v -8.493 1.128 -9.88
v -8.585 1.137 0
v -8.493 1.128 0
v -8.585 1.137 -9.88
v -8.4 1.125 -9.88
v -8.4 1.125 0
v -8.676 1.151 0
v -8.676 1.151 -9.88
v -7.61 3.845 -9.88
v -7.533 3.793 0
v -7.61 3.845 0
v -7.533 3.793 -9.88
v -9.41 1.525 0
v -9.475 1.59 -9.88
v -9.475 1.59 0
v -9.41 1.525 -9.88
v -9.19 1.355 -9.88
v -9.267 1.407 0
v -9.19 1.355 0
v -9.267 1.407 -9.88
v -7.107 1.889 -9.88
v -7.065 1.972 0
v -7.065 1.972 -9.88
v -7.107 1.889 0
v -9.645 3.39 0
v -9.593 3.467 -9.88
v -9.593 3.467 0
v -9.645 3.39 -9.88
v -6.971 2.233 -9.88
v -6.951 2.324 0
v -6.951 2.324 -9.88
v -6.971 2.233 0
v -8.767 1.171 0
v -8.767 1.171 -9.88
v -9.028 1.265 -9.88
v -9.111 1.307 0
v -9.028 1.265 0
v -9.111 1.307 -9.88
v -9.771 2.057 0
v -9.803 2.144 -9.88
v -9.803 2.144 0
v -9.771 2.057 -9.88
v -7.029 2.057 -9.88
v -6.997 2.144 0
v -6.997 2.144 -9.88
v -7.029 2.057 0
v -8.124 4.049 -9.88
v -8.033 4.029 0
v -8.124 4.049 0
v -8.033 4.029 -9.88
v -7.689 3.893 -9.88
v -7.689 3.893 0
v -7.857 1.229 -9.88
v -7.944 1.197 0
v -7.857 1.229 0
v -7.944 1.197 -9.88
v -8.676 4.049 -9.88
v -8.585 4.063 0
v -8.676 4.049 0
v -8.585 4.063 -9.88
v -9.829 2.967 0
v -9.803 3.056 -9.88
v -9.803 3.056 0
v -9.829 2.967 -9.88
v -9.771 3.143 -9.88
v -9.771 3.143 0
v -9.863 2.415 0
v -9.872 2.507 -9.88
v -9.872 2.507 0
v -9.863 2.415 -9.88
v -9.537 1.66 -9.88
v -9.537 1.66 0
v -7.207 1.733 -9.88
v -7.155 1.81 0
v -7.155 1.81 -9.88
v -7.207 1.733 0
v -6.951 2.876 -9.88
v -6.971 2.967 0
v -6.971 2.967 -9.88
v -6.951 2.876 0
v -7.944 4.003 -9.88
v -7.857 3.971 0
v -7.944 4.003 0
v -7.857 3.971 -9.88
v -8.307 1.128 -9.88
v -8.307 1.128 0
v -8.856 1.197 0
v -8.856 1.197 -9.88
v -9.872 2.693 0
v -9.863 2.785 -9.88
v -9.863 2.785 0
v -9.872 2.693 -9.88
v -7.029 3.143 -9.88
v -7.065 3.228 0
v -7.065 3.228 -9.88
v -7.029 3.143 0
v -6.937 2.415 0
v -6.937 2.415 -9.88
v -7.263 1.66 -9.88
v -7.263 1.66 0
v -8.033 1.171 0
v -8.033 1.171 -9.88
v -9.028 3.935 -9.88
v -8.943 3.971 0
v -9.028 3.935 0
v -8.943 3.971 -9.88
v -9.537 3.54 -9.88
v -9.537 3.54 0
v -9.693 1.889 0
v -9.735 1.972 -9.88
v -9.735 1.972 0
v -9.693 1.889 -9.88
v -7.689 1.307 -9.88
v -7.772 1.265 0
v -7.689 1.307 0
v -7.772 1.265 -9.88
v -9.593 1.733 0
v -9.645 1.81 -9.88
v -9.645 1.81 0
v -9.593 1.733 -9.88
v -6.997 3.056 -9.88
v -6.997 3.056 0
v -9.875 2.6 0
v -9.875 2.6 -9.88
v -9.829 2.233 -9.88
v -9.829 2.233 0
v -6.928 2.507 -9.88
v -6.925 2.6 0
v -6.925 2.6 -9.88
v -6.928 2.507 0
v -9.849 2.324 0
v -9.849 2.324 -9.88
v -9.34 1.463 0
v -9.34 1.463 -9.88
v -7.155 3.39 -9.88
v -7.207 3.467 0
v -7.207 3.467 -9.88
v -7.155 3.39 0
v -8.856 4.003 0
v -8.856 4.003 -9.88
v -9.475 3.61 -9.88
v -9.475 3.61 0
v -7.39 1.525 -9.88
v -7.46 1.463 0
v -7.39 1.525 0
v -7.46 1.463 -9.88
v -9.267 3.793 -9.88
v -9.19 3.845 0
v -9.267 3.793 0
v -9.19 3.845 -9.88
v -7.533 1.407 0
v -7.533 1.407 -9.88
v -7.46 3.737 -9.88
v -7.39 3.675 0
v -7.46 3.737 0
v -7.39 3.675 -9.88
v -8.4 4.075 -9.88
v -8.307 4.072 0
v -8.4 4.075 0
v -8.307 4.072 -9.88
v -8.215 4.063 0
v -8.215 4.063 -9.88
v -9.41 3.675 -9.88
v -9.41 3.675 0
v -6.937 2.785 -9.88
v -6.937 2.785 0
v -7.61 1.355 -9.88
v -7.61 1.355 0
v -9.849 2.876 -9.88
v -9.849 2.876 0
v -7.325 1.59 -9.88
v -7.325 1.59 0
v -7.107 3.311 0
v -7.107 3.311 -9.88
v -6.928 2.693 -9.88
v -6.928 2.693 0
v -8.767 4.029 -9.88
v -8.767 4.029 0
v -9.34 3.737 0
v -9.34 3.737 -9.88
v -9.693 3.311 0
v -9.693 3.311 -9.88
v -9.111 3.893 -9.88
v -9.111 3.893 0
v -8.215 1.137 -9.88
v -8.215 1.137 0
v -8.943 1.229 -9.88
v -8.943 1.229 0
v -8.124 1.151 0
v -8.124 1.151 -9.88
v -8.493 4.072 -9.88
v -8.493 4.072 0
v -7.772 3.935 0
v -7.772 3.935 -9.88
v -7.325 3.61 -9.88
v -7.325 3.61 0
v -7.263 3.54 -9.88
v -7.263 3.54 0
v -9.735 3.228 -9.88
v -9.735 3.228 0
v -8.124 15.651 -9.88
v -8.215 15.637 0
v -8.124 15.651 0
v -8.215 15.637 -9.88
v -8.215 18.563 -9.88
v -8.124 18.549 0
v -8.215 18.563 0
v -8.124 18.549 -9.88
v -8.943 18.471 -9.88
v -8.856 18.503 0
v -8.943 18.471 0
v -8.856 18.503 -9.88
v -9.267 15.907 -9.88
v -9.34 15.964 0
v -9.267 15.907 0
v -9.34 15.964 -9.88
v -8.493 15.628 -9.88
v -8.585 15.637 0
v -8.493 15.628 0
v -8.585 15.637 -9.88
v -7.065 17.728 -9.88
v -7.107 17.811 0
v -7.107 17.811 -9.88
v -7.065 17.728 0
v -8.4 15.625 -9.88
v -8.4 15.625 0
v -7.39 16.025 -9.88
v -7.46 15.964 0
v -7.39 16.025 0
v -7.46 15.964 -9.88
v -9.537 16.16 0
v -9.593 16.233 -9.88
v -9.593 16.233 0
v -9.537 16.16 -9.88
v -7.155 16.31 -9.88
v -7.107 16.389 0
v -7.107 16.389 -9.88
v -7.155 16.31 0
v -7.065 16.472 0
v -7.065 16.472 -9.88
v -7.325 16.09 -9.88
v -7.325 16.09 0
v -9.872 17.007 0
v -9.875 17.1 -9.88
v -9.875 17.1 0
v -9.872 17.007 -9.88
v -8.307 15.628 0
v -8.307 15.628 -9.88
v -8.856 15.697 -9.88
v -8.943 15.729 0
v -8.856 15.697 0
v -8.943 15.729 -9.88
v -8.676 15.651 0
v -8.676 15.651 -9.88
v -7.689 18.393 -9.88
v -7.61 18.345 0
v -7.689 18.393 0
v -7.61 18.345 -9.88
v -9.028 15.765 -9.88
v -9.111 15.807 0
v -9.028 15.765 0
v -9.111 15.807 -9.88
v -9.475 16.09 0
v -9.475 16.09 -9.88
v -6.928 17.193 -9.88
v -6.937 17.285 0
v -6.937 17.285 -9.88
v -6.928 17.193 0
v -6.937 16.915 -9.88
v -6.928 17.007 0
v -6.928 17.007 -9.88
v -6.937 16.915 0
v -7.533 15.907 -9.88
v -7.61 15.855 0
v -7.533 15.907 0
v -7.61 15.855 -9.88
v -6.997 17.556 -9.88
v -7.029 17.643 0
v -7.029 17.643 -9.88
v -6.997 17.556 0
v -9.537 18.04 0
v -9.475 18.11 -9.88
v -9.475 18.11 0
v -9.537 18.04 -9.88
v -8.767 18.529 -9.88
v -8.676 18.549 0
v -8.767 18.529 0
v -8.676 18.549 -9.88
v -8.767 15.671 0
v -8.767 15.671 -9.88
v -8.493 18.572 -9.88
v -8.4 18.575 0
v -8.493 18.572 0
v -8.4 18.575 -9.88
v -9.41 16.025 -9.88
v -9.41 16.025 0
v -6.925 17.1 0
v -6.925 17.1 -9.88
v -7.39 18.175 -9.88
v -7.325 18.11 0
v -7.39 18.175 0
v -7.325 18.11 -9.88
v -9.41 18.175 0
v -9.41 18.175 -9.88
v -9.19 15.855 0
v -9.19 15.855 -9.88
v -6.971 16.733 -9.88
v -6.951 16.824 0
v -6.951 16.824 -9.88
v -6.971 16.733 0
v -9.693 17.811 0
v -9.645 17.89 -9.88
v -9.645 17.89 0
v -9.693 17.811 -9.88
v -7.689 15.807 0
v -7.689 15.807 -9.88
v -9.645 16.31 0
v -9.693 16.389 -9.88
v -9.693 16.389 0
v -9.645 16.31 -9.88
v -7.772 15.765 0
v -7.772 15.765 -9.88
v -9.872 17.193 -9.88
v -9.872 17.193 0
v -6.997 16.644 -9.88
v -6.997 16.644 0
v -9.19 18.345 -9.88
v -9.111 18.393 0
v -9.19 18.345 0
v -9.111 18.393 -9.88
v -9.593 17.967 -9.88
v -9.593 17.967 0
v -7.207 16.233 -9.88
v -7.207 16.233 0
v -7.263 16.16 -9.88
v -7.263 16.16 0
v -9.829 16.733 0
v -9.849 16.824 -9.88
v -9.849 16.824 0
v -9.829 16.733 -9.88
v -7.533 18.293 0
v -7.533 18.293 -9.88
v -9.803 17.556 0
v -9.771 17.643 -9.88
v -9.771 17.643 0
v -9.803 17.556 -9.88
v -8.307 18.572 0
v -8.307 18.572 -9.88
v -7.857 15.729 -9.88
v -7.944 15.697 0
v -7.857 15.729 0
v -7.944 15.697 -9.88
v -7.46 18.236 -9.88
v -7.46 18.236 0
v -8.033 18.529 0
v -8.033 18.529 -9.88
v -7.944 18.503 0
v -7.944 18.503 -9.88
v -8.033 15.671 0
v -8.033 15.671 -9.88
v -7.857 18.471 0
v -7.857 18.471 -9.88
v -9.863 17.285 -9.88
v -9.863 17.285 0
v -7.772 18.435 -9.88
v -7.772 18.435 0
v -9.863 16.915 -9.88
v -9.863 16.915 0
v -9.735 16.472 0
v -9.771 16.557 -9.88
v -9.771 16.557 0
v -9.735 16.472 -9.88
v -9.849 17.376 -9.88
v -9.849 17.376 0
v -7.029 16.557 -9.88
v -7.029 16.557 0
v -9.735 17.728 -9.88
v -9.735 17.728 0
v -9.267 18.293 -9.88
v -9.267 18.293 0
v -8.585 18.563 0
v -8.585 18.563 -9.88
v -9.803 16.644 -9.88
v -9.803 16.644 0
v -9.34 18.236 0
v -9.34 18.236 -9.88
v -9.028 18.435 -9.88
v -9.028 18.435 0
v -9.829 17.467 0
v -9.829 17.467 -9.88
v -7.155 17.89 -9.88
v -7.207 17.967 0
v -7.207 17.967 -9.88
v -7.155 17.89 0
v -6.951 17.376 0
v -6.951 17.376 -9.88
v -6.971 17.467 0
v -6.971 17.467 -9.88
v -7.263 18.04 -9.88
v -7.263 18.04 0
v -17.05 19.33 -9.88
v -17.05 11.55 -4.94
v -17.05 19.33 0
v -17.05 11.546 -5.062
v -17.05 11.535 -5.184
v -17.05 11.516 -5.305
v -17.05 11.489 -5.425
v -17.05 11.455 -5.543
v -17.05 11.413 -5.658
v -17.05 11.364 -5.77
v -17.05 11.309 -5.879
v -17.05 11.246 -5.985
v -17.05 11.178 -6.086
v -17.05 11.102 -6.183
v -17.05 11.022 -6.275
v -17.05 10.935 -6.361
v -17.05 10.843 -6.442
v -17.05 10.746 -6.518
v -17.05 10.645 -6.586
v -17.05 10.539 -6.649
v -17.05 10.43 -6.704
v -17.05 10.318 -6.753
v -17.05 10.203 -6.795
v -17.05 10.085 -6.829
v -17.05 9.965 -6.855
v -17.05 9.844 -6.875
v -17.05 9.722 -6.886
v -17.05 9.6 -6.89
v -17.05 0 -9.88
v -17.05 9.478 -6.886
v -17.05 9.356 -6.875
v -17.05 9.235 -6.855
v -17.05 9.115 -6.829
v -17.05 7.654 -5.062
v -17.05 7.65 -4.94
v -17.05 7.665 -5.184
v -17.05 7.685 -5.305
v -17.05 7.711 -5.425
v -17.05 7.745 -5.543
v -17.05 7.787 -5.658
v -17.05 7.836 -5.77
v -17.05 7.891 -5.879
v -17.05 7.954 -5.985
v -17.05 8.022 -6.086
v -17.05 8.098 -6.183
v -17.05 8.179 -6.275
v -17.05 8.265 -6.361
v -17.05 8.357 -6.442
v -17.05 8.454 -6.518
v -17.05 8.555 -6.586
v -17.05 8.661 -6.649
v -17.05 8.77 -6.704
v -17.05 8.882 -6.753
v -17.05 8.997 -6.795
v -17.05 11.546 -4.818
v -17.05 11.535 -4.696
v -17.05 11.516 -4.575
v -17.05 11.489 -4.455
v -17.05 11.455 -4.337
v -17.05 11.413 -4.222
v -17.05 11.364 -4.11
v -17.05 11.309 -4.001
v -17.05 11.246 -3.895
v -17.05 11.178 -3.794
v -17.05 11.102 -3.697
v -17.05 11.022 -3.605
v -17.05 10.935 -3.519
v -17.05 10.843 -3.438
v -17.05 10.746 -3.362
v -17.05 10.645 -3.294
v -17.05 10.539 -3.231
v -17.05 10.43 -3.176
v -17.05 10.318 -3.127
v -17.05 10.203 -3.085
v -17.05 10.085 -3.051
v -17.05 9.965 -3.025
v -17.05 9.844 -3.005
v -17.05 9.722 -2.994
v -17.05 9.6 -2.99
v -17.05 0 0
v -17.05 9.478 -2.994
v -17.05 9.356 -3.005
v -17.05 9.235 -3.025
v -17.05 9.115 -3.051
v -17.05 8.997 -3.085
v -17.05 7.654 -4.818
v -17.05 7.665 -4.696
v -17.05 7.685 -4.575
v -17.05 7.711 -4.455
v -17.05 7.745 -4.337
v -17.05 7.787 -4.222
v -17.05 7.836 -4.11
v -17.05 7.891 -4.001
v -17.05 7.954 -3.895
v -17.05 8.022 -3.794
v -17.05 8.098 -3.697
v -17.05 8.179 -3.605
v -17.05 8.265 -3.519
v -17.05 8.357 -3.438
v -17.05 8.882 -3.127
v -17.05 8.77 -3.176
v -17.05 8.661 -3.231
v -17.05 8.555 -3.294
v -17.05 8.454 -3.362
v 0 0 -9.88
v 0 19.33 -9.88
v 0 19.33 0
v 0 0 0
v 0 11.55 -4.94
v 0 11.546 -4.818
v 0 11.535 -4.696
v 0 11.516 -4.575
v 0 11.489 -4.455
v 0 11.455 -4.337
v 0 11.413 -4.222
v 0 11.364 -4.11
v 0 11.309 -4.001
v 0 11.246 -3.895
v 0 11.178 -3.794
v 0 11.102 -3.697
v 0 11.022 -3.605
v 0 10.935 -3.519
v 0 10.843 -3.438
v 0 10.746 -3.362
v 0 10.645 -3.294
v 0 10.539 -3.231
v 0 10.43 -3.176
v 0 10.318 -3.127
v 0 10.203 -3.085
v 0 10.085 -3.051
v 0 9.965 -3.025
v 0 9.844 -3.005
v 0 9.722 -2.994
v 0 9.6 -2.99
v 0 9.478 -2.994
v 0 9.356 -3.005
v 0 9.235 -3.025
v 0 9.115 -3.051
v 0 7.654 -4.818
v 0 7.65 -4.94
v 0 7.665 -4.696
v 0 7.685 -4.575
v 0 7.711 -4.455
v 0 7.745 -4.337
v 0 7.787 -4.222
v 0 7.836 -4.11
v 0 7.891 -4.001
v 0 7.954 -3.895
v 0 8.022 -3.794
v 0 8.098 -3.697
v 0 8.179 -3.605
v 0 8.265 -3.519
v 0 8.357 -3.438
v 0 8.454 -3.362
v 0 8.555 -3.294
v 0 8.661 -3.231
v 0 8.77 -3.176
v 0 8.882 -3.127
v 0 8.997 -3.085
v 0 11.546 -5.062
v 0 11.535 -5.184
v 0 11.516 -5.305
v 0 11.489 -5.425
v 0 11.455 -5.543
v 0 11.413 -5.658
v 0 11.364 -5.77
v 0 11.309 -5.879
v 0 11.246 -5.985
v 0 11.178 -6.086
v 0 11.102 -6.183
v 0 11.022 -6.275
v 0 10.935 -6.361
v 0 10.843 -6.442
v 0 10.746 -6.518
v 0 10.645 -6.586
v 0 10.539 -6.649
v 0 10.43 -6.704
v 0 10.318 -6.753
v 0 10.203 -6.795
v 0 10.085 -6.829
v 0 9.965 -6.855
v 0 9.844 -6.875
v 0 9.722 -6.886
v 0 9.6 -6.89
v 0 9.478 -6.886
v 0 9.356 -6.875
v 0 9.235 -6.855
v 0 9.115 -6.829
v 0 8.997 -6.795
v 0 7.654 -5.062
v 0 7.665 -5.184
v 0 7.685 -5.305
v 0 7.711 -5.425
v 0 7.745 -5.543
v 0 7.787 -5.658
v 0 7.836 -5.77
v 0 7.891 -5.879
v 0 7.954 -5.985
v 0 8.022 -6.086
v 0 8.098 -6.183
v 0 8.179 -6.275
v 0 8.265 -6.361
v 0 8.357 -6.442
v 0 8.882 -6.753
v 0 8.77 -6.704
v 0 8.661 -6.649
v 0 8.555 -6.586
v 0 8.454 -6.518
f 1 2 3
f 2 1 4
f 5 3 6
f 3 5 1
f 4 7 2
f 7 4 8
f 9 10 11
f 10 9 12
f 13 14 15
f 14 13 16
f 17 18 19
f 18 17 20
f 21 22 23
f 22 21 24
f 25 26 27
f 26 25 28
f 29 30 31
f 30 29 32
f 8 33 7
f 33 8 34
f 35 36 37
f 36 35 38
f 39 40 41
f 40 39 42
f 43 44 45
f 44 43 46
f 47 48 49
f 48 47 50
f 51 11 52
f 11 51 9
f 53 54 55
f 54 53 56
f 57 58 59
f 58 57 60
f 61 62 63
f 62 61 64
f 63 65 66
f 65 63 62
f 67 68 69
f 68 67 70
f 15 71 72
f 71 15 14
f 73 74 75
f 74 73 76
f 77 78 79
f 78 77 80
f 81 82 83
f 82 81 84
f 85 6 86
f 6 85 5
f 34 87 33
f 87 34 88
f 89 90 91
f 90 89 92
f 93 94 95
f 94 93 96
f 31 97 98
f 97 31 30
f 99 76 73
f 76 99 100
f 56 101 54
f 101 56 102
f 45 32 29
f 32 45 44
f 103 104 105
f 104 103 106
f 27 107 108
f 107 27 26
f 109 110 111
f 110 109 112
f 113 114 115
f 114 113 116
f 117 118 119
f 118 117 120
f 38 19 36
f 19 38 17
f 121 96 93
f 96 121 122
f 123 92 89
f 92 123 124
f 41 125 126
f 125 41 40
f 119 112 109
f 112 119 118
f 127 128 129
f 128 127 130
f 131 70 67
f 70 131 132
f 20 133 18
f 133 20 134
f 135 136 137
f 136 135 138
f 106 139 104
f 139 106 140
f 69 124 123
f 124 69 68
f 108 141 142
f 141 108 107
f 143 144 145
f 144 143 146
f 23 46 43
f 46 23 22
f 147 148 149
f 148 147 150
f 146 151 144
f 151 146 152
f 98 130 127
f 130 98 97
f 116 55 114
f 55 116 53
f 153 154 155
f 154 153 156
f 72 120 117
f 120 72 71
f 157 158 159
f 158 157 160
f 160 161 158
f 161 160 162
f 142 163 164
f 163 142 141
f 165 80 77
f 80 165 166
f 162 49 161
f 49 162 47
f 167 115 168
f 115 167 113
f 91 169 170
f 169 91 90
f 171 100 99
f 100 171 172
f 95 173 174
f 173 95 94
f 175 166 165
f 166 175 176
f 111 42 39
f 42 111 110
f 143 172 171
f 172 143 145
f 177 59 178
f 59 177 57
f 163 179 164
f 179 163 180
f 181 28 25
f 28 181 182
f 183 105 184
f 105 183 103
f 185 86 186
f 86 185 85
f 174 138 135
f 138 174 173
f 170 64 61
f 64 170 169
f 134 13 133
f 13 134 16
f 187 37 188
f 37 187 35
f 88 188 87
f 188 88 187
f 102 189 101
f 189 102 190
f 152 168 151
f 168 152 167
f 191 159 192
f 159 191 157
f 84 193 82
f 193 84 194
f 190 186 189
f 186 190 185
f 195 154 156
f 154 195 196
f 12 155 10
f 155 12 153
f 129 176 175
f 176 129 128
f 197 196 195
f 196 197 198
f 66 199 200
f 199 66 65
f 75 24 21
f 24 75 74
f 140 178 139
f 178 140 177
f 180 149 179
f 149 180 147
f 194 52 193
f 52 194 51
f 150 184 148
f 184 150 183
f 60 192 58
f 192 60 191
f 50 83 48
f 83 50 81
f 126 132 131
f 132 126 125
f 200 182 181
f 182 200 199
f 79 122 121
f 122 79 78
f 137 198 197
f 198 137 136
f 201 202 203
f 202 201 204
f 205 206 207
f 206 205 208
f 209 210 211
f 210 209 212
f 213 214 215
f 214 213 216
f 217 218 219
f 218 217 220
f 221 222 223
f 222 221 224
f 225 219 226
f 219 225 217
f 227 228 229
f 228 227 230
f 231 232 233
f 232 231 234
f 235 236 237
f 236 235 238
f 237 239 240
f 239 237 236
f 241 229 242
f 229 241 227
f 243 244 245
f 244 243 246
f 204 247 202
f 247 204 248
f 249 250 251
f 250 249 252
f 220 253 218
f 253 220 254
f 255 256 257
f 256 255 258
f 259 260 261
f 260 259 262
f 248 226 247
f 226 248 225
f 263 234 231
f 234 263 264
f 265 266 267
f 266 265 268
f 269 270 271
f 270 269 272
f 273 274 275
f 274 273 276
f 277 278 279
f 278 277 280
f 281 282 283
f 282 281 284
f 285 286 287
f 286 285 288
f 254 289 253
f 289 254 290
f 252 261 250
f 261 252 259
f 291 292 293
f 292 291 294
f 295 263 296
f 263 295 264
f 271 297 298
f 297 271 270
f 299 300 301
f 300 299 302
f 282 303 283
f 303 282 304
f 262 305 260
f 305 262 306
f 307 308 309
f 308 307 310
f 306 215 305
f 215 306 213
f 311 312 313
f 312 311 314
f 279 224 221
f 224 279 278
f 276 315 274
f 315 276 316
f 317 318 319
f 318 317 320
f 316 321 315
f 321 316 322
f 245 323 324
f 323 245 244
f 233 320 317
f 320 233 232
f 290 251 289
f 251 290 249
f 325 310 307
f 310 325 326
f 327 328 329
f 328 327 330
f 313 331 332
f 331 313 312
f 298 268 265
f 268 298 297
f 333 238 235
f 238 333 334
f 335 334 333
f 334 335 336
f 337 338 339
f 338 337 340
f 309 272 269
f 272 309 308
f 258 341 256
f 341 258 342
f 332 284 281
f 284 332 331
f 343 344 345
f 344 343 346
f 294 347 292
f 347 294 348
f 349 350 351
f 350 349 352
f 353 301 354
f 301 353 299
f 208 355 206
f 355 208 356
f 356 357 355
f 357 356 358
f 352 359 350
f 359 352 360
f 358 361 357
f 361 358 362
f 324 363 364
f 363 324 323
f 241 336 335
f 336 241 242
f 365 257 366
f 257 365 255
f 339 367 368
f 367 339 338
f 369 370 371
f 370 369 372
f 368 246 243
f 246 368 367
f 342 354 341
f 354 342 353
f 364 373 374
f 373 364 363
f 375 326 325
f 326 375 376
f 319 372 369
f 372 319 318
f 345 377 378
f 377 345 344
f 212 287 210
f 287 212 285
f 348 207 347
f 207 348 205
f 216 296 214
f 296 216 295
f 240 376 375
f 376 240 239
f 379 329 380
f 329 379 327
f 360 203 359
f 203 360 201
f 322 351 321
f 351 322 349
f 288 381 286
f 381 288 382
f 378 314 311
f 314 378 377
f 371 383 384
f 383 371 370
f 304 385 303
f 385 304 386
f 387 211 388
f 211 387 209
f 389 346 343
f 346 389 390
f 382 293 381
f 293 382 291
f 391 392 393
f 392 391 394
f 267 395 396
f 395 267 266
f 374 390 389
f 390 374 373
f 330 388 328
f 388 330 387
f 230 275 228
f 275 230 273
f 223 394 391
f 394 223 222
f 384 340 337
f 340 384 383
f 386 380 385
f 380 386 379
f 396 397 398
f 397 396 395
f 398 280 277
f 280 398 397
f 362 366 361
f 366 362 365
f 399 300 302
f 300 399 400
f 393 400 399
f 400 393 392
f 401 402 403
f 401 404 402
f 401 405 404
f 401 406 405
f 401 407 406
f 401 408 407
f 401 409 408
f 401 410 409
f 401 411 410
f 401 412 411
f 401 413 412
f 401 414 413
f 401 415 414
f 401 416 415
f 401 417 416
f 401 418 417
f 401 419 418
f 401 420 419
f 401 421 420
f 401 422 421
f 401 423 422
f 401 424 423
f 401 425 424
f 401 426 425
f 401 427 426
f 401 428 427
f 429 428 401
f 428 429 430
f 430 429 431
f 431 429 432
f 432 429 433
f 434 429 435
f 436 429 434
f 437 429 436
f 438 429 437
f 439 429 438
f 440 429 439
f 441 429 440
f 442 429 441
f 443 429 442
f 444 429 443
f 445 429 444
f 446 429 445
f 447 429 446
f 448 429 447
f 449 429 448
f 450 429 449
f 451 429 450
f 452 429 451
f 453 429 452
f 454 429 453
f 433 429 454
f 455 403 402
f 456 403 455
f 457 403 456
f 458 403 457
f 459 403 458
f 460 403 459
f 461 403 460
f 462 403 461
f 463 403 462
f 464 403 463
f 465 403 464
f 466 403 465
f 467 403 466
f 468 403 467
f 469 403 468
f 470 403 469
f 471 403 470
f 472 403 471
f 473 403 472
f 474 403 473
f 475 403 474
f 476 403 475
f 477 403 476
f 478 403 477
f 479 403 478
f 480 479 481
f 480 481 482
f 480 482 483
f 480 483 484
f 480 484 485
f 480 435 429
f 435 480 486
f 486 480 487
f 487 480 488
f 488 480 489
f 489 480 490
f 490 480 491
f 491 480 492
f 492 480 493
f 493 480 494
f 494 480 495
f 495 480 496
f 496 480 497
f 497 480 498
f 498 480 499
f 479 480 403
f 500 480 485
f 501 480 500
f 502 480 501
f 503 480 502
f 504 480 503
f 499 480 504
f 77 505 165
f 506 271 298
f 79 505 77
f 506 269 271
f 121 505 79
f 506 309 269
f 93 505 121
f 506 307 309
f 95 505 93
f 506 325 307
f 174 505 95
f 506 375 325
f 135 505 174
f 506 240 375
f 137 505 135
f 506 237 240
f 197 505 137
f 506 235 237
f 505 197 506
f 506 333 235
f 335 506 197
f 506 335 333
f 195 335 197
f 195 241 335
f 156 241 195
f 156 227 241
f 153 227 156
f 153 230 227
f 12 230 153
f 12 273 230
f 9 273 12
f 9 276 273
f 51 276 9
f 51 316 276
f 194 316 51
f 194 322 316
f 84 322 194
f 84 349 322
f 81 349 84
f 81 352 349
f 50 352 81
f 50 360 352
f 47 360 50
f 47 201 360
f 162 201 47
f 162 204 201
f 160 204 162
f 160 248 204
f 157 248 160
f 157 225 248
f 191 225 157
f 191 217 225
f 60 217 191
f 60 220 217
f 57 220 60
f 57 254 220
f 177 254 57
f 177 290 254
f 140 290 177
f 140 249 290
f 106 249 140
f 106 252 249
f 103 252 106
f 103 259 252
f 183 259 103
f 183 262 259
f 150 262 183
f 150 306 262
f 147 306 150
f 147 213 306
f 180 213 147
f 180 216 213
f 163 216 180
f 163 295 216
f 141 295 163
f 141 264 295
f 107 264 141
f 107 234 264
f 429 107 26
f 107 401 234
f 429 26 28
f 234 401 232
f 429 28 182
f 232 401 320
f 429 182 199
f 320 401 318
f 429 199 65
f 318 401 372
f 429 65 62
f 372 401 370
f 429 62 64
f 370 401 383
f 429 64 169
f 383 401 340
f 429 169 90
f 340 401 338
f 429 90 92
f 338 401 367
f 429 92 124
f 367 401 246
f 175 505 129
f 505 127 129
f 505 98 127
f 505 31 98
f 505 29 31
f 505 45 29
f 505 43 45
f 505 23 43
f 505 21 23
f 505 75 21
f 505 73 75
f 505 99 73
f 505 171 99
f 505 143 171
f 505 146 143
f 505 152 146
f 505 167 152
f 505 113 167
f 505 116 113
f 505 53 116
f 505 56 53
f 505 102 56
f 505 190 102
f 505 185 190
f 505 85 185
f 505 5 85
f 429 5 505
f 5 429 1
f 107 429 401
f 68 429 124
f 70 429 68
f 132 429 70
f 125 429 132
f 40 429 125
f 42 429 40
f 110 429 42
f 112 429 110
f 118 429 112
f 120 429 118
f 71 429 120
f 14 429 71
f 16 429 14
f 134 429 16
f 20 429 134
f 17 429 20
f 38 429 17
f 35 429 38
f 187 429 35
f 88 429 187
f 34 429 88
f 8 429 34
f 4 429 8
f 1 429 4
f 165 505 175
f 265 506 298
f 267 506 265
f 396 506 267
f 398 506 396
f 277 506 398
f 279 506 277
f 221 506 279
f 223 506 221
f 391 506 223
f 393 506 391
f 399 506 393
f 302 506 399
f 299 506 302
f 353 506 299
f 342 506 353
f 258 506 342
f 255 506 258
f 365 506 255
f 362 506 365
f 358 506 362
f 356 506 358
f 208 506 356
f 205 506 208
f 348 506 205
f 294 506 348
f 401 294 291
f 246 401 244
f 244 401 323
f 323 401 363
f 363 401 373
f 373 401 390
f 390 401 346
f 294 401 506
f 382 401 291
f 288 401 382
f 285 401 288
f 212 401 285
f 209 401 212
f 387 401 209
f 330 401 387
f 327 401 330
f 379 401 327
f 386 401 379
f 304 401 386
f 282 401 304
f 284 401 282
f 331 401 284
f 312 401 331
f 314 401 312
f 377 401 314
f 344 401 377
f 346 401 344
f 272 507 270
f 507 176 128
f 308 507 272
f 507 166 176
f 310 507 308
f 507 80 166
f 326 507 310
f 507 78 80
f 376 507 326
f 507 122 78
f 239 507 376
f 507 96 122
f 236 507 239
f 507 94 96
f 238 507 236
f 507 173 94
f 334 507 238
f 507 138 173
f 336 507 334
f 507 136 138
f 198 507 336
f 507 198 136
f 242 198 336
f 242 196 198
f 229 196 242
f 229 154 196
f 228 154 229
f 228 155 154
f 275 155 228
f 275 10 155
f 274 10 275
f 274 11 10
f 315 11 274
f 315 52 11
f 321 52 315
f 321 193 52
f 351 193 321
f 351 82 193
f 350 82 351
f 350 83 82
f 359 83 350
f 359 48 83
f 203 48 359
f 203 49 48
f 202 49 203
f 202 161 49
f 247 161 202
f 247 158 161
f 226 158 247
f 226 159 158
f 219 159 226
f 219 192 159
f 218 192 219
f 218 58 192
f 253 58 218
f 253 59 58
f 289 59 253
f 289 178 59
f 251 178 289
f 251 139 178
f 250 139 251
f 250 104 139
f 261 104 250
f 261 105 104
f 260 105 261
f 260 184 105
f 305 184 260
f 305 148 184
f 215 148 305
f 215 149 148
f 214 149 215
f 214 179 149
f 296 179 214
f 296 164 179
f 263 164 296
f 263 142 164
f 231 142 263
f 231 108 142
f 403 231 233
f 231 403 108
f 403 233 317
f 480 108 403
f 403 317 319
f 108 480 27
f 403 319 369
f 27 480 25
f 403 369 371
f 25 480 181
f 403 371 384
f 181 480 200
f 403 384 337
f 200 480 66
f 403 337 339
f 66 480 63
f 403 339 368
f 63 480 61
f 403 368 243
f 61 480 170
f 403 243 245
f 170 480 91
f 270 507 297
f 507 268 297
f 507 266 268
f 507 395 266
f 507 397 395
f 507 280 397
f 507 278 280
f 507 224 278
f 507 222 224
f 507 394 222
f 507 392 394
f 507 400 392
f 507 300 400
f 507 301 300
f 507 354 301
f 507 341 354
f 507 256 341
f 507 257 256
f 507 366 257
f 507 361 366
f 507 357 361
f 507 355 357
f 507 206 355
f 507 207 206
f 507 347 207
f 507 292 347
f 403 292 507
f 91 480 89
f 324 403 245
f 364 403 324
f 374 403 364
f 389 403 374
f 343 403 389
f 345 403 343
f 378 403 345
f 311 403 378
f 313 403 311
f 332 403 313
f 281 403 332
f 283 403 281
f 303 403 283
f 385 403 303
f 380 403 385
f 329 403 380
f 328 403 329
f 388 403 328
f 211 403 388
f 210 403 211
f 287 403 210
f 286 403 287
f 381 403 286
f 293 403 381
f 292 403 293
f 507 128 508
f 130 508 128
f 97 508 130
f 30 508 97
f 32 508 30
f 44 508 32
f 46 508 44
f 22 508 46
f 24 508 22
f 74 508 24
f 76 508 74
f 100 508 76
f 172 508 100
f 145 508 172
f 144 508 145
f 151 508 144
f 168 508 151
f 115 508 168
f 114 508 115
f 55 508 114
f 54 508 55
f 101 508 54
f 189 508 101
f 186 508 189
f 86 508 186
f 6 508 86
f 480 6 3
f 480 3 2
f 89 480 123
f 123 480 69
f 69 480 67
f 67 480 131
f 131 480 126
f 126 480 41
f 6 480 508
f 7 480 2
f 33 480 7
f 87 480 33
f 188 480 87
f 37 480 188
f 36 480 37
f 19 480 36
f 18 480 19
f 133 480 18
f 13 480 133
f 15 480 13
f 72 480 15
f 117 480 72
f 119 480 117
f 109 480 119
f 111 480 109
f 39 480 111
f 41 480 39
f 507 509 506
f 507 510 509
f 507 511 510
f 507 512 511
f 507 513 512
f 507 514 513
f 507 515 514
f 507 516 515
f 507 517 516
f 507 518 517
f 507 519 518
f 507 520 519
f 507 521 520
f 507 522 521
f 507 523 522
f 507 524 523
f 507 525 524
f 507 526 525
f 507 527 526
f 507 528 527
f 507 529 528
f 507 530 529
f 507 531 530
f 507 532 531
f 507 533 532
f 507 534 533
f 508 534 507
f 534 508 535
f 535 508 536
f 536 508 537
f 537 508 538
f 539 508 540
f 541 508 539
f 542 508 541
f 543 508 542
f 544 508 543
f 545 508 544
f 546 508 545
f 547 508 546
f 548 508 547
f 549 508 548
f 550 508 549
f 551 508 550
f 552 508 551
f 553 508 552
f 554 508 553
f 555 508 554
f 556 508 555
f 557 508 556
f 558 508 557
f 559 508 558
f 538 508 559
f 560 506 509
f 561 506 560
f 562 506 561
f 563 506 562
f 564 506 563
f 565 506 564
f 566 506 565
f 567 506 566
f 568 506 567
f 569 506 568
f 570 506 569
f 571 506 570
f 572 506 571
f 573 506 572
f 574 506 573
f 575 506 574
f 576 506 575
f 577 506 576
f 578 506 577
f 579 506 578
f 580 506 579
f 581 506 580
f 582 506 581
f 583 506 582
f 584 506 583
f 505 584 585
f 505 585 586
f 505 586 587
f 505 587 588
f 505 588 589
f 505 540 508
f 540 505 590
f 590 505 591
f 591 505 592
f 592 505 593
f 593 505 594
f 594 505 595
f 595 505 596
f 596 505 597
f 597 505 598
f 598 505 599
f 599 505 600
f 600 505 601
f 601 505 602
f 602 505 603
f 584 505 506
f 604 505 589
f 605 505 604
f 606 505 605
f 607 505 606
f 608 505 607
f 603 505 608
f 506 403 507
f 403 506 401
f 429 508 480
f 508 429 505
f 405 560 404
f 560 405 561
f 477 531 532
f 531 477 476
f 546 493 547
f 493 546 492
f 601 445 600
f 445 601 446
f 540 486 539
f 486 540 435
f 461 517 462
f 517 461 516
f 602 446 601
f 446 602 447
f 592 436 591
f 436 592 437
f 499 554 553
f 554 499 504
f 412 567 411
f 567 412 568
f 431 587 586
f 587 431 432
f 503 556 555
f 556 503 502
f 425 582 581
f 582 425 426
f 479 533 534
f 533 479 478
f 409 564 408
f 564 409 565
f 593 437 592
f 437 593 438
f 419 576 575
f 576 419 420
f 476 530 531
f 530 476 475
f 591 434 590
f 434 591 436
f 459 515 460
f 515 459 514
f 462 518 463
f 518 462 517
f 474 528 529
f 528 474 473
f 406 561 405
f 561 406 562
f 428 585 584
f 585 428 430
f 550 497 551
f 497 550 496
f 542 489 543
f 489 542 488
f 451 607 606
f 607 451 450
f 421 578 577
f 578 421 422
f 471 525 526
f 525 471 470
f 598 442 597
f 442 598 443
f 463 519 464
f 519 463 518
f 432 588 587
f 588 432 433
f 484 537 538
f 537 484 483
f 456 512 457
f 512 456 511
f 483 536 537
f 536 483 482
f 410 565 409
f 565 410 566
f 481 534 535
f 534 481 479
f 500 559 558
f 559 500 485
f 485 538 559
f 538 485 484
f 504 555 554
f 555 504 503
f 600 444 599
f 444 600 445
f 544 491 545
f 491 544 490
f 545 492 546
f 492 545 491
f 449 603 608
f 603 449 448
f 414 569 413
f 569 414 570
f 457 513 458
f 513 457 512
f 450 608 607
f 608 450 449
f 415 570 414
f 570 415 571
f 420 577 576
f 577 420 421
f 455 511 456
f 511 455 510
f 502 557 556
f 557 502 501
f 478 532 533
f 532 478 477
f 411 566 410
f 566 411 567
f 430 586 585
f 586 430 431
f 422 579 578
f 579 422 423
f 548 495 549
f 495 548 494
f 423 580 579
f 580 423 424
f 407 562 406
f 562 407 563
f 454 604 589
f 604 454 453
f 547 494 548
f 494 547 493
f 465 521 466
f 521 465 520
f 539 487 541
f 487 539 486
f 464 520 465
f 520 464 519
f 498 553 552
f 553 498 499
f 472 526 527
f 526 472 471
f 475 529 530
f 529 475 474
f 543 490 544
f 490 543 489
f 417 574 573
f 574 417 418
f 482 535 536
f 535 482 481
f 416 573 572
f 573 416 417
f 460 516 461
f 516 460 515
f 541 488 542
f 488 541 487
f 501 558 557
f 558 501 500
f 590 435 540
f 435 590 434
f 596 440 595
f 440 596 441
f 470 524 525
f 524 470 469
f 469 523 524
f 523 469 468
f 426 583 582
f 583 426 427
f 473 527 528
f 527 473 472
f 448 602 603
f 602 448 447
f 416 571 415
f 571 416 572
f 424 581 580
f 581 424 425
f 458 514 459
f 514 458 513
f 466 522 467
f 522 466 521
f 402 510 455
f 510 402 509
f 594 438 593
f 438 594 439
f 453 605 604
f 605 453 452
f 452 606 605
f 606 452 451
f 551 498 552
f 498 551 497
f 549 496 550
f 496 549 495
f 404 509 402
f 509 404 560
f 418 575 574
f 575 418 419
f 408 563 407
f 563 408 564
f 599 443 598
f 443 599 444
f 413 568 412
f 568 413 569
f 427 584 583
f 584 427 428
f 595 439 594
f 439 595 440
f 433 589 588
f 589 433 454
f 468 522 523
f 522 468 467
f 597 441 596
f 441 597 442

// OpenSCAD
// file: ../../shared_helper.scad
// Shared Helper variables and modules

// Variables
quality_value = 100;
$fn = quality_value;

// Screw Holes
m2_hole_diameter = 1.85; // 1.95;
m2_loose_diameter = 2.50;
m2_counter_sink_diameter = 3.80;
m2_counter_sink_length = 2.00;
m2_hole_offset = m2_hole_diameter / 2.0;
m2_hole_height = 100.00;
m2_nut_outer_width = 3.90;
m2_nut_outer_height = 4.40;
m2_nut_outer_depth = 1.50;
// M2_Counter_Sink_Depth

m3_hole_diameter = 2.9; // 2.8
m3_hole_offset = m3_hole_diameter / 2.0;
m3_hole_height = 100.00;
m3_head_diameter = 6.2;
m3_head_depth = 3.0; // 2.5??, 3.0

m4_hole_diameter = 3.85; // 3.90
m4_hole_offset = m4_hole_diameter / 2.0;
m4_hole_height = 100.00;
m4_head_diameter = 7.55;
m4_head_depth = 3.0; // 2.5??, 3.0

// Tolerances
hole_tight_tolerance = 0.05;
hole_loose_tolerance = 0.20;

// Springs
spring_diameter = 5.45;
spring_length = 35.00;

// Nails
brass_nail_diameter = 2.4; // 2.00; // 1.95 at the beginning it tapers
brass_nail_length = 29.54;
brass_nail_head_diameter = 3.20; // 3.00; // oval 2.84 - 3.1 mm
brass_nail_head_depth = 1.80; //1.00; // 1.80; // 2.00;

// General Variables
v_wheel_hole_diameter = 5.20;
v_wheel_offset = (v_wheel_hole_diameter / 2.0) + 2.0;

// Hot-End Holes
stand_off_hole_diameter = m3_hole_diameter;
stand_off_width_distance = 11.60 + stand_off_hole_diameter;

// Magnets
// Small Magnet (Neo)
small_magnet_height = 2.00; // ±2.00 1.97
small_magnet_diameter = 3.00; // ±3.00 // 2.98

// Medium Magnet (Neo)
medium_magnet_height = 2.96; // ±3.00
medium_magnet_diameter = 5.00;

// Large Magnet (ferrite)
large_magnet_height = 2.98; // ±3.00
large_magnet_diameter = 9.79; // ±10.00

// Switches
// D2F Switch
d2f_length = 12.88; // ±12.70
d2f_width = 5.84; // ±5.70
d2f_depth = 6.20; // ±7.00 (5 + 2) ... ±6.50
d2f_pins = 9.00 - 6.50;
d2f_plunger_length = 2.64;
d2f_plunger_width = 0.97; // ±1.00
d2f_plunger_depth = 0.39; // ±0.50
d2f_mount_hole_position = 2.10;
d2f_hole_position_from_centre = 2.85;
d2f_pin_pre_travel = 0.50;
d2f_mount_hole_shift = 4.40 + m2_hole_offset + m2_hole_offset;
d2f_switch_base = 0.2 + 0.7 + 1.50 + 0.55 - 1.0;
d2f_switch_hole_hight = 22.00;
d2f_extra_tolerance_for_switch_holes = 0.12;

// 10t85 Switch
10t85_length = 20.04; // ±19.90
10t85_width = 6.34; // ±6.40
10t85_depth = 10.64; // ±10.70
10t85_plunger_length = 3.28; // ±4.00
10t85_plunger_width = 1.96;
10t85_plunger_depth = 1.30;

// Creality Endstop Board, 2208 V2.0
// creality_endstop_hole_diameter = m3_hole_diameter + hole_loose_tolerance; // Hole is M3 sized but meant for a loose M2
creality_endstop_hole_diameter = m2_hole_diameter + hole_tight_tolerance;
creality_endstop_hole_offset = 15.00;
creality_endstop_board_height = 20.30;
creality_endstop_plug_height_extension = 2.00;
creality_endstop_board_width = 20.20;
creality_endstop_board_thickness = 1.30;
creality_endstop_board_pins_thickness = 3.20 - creality_endstop_board_thickness;
creality_endstop_board_switch_thickness = 8.50 - creality_endstop_board_thickness;
creality_endstop_board_back_space = 2.00; // Taken from the rail mount bracket
creality_endstop_board_back_height = 14.90;
creality_endstop_board_back_width = 16.80;
creality_endstop_back_thickness = 3.30;
creality_endstop_back_hole_wall_spacing = 1.50; //3.00;

// Small Tactile Switch
small_tactile_switch_length = 6.21;
small_tactile_switch_width = 6.17;
small_tactile_switch_depth = 3.18;
small_tactile_switch_plunger_diameter = 3.40;
small_tactile_switch_plunger_depth = 1.40;

// Large Tactile Switch
large_tactile_switch_length = 12.03;
large_tactile_switch_width = 11.95;
large_tactile_switch_depth = 3.12;
large_tactile_switch_plunger_length = 3.75;
large_tactile_switch_plunger_width = 3.70;
large_tactile_switch_plunger_depth = 3.94;

// Button
button_topper_top_diameter = 11.65;
button_topper_bottom_diameter = 12.96;
button_topper_depth = 5.64;
button_topper_bottom_depth = 4.38;

// Belts
// GT2

// Modules
// Creality Mounting Holes
module CrealityCounterSunkHotEndMountingHoles(total_casing_depth, casing_top_extension) {
  // Mounting holes with countersinking - horizontal, through-holes, properly positioned
  cylinder(d=m3_hole_diameter, h=total_casing_depth + 2.00, center=true);
  cylinder(d=m3_hole_diameter, h=total_casing_depth + 2.00, center=true);

  translate([stand_off_width_distance, 0, 0]) {
    cylinder(d=m3_hole_diameter, h=total_casing_depth + 2.00, center=true);
    cylinder(d=m3_head_diameter + hole_loose_tolerance, h=4 + m3_head_depth + 6 + 1.8 + casing_top_extension);
  }
}

module CrealityHotEndMountingHoles(total_casing_depth) {
  cylinder(d=m3_hole_diameter, h=total_casing_depth + 2.00, center=true);

  translate([stand_off_width_distance, 0, 0]) {
    cylinder(d=m3_hole_diameter, h=total_casing_depth + 2.00, center=true);
  }
}

module CrealityEndstopMountHoles(height, include_back_nut_cutout) {
  cylinder(d=creality_endstop_hole_diameter, h=height, center=true);

  translate([creality_endstop_hole_offset, 0, 0]) {
    cylinder(d=creality_endstop_hole_diameter, h=height, center=true);
  }

  if (include_back_nut_cutout) {
    back_depth = m2_nut_outer_depth;

    translate([-2.0, -2.0, 0]) {
      cube([m2_nut_outer_width, m2_nut_outer_height, back_depth]);

      translate([creality_endstop_hole_offset, 0, 0]) {
        cube([m2_nut_outer_width, m2_nut_outer_height, back_depth]);
      }
    }
  }
}

module CrealityEndstopBackSpace(base_cutout_extension) {
  // Smaller gap between screw holes
  translate([creality_endstop_hole_diameter + creality_endstop_back_hole_wall_spacing, 0.0, 0.0]) {
    cube([creality_endstop_board_back_width - 2 * (creality_endstop_hole_diameter + creality_endstop_back_hole_wall_spacing), base_cutout_extension, creality_endstop_back_thickness + 1.0]);
  }

  // Top gap part
  translate([0.0, base_cutout_extension, 0]) {
    cube([creality_endstop_board_back_width, (creality_endstop_board_back_height + base_cutout_extension), creality_endstop_back_thickness + 1.0]);
  }
}

// D2F Switch Mounting
module D2F_Switch_Space() { // Should be used as a negative / difference space
  // D2F Switch Space
  // switch_base = 0.2 + 0.7 + 1.50 + 0.55;
  // switch_base = 0.2 + 0.7 + 1.50 + 0.55 - 1.0;
  switch_base = d2f_switch_base;

  // cube([d2f_depth, d2f_width + 1.05 + 0.75 - 0.95, d2f_length + casing_top_edge_buffer]); // 1.05
  cube([d2f_length, (d2f_width + 2.00) + d2f_pins, d2f_depth]);
}

module D2F_Switch_Mount_Holes() {
  rotate([0, 0, 90]) {
    translate([0.0, d2f_hole_position_from_centre, 0.0]) {
      cylinder(d=m2_hole_diameter + hole_tight_tolerance + (d2f_extra_tolerance_for_switch_holes * 3), h=d2f_switch_hole_hight);
    }

    translate([0.0, -(d2f_hole_position_from_centre + m2_hole_offset), 0.0]) {
      cylinder(d=m2_hole_diameter + hole_tight_tolerance + (d2f_extra_tolerance_for_switch_holes * 3), h=d2f_switch_hole_hight);
    }
  }
}
// file: hotend_slider_helpers.scad
include <../../shared_helper.scad>

// Slider mechanism specific variables
slider_height = 20.00;
slider_width = 20.00; // 23.00 30.00
slider_depth = 10.00;
slider_movement = 2.00; // How far the slider can move
slider_guide_hole_diameter = brass_nail_diameter + hole_loose_tolerance; // For brass nails

spring_hole_offset = 6.00; // Distance between spring holes
spring_back_space = 2.00; // Space behind spring - 1.00;

casing_wall_thickness = 4.00;
casing_bottom_thickness = 2.00;

m3_head_depth = 0.2; // 2.5??, 3.0

small_magent_position = 3.00;
// main file
include <hotend_slider_helpers.scad>

module Slider() {
  top_extension = 1.60 + 1.70 + 0.20 + 0.30 + 0.20;

  half_height = (slider_height - 0.80) / 2.00; // 1.02

  slider_tolerance = 0.40 + 0.2 - 0.03 + 0.1; // - 1.02
  slider_height_with_offsets = slider_height - slider_tolerance; // side dimensions

  slider_depth_with_offsets = slider_depth + top_extension - 0.32 - 0.2 - 3.60;
  half_depth = slider_depth_with_offsets / 2.00;

  slider_guide_hole_diameter = brass_nail_diameter + hole_loose_tolerance + hole_tight_tolerance + hole_tight_tolerance; // For brass nails

  shortner = (5.00 + 1.15 + 0.3) - 3.5;
  magnet_position = slider_width - (shortner + small_magnet_height);

  rotate([0, 180, 0]) { // Make sure right way up - Currently base is the real base since the slider is not symmetrical on z axis
    difference() {
      // Main body
      cube([slider_width - shortner, slider_height_with_offsets, slider_depth_with_offsets]);

      // Hotend mounting holes (M3)
      rotate([0, 0, -90]) {
        translate([-2.60, half_height - 1.2, - 1.00]) {
          cylinder(d=m3_hole_diameter + hole_tight_tolerance, h=slider_depth_with_offsets + 2.00);
          translate([-stand_off_width_distance, 0, 0]) {
            cylinder(d=m3_hole_diameter + hole_tight_tolerance, h=slider_depth_with_offsets + 2.00);
          }
        }
      }

      // Single centered spring hole
      // translate([spring_back_space, half_height, half_depth]) {
      //   rotate([0, 90, 0])
      //   cylinder(d=spring_diameter + 0.55, h=slider_width - shortner);
      // }

      // Guide hole
      translate([0, half_height, half_depth]) {
        rotate([0, 90, 0])
        // cylinder(d=slider_guide_hole_diameter, h=slider_width - shortner + 1.00);
        cylinder(d=m4_hole_diameter + hole_tight_tolerance, h=100.00);
      }

      // Second guide hole. Offset from mounting holes
      // translate([0.0, slider_height - 5.80, half_depth]) {
      //   rotate([0, 90, 0])
      //   cylinder(d=slider_guide_hole_diameter, h=100);
      // }

      // Bottom guide hole
      // translate([0.0, 5.0 + (0.2), half_depth]) {
      //   rotate([0, 90, 0])
      //   cylinder(d=slider_guide_hole_diameter + hole_loose_tolerance, h=100);
      // }
    }
  }
}

Slider();
